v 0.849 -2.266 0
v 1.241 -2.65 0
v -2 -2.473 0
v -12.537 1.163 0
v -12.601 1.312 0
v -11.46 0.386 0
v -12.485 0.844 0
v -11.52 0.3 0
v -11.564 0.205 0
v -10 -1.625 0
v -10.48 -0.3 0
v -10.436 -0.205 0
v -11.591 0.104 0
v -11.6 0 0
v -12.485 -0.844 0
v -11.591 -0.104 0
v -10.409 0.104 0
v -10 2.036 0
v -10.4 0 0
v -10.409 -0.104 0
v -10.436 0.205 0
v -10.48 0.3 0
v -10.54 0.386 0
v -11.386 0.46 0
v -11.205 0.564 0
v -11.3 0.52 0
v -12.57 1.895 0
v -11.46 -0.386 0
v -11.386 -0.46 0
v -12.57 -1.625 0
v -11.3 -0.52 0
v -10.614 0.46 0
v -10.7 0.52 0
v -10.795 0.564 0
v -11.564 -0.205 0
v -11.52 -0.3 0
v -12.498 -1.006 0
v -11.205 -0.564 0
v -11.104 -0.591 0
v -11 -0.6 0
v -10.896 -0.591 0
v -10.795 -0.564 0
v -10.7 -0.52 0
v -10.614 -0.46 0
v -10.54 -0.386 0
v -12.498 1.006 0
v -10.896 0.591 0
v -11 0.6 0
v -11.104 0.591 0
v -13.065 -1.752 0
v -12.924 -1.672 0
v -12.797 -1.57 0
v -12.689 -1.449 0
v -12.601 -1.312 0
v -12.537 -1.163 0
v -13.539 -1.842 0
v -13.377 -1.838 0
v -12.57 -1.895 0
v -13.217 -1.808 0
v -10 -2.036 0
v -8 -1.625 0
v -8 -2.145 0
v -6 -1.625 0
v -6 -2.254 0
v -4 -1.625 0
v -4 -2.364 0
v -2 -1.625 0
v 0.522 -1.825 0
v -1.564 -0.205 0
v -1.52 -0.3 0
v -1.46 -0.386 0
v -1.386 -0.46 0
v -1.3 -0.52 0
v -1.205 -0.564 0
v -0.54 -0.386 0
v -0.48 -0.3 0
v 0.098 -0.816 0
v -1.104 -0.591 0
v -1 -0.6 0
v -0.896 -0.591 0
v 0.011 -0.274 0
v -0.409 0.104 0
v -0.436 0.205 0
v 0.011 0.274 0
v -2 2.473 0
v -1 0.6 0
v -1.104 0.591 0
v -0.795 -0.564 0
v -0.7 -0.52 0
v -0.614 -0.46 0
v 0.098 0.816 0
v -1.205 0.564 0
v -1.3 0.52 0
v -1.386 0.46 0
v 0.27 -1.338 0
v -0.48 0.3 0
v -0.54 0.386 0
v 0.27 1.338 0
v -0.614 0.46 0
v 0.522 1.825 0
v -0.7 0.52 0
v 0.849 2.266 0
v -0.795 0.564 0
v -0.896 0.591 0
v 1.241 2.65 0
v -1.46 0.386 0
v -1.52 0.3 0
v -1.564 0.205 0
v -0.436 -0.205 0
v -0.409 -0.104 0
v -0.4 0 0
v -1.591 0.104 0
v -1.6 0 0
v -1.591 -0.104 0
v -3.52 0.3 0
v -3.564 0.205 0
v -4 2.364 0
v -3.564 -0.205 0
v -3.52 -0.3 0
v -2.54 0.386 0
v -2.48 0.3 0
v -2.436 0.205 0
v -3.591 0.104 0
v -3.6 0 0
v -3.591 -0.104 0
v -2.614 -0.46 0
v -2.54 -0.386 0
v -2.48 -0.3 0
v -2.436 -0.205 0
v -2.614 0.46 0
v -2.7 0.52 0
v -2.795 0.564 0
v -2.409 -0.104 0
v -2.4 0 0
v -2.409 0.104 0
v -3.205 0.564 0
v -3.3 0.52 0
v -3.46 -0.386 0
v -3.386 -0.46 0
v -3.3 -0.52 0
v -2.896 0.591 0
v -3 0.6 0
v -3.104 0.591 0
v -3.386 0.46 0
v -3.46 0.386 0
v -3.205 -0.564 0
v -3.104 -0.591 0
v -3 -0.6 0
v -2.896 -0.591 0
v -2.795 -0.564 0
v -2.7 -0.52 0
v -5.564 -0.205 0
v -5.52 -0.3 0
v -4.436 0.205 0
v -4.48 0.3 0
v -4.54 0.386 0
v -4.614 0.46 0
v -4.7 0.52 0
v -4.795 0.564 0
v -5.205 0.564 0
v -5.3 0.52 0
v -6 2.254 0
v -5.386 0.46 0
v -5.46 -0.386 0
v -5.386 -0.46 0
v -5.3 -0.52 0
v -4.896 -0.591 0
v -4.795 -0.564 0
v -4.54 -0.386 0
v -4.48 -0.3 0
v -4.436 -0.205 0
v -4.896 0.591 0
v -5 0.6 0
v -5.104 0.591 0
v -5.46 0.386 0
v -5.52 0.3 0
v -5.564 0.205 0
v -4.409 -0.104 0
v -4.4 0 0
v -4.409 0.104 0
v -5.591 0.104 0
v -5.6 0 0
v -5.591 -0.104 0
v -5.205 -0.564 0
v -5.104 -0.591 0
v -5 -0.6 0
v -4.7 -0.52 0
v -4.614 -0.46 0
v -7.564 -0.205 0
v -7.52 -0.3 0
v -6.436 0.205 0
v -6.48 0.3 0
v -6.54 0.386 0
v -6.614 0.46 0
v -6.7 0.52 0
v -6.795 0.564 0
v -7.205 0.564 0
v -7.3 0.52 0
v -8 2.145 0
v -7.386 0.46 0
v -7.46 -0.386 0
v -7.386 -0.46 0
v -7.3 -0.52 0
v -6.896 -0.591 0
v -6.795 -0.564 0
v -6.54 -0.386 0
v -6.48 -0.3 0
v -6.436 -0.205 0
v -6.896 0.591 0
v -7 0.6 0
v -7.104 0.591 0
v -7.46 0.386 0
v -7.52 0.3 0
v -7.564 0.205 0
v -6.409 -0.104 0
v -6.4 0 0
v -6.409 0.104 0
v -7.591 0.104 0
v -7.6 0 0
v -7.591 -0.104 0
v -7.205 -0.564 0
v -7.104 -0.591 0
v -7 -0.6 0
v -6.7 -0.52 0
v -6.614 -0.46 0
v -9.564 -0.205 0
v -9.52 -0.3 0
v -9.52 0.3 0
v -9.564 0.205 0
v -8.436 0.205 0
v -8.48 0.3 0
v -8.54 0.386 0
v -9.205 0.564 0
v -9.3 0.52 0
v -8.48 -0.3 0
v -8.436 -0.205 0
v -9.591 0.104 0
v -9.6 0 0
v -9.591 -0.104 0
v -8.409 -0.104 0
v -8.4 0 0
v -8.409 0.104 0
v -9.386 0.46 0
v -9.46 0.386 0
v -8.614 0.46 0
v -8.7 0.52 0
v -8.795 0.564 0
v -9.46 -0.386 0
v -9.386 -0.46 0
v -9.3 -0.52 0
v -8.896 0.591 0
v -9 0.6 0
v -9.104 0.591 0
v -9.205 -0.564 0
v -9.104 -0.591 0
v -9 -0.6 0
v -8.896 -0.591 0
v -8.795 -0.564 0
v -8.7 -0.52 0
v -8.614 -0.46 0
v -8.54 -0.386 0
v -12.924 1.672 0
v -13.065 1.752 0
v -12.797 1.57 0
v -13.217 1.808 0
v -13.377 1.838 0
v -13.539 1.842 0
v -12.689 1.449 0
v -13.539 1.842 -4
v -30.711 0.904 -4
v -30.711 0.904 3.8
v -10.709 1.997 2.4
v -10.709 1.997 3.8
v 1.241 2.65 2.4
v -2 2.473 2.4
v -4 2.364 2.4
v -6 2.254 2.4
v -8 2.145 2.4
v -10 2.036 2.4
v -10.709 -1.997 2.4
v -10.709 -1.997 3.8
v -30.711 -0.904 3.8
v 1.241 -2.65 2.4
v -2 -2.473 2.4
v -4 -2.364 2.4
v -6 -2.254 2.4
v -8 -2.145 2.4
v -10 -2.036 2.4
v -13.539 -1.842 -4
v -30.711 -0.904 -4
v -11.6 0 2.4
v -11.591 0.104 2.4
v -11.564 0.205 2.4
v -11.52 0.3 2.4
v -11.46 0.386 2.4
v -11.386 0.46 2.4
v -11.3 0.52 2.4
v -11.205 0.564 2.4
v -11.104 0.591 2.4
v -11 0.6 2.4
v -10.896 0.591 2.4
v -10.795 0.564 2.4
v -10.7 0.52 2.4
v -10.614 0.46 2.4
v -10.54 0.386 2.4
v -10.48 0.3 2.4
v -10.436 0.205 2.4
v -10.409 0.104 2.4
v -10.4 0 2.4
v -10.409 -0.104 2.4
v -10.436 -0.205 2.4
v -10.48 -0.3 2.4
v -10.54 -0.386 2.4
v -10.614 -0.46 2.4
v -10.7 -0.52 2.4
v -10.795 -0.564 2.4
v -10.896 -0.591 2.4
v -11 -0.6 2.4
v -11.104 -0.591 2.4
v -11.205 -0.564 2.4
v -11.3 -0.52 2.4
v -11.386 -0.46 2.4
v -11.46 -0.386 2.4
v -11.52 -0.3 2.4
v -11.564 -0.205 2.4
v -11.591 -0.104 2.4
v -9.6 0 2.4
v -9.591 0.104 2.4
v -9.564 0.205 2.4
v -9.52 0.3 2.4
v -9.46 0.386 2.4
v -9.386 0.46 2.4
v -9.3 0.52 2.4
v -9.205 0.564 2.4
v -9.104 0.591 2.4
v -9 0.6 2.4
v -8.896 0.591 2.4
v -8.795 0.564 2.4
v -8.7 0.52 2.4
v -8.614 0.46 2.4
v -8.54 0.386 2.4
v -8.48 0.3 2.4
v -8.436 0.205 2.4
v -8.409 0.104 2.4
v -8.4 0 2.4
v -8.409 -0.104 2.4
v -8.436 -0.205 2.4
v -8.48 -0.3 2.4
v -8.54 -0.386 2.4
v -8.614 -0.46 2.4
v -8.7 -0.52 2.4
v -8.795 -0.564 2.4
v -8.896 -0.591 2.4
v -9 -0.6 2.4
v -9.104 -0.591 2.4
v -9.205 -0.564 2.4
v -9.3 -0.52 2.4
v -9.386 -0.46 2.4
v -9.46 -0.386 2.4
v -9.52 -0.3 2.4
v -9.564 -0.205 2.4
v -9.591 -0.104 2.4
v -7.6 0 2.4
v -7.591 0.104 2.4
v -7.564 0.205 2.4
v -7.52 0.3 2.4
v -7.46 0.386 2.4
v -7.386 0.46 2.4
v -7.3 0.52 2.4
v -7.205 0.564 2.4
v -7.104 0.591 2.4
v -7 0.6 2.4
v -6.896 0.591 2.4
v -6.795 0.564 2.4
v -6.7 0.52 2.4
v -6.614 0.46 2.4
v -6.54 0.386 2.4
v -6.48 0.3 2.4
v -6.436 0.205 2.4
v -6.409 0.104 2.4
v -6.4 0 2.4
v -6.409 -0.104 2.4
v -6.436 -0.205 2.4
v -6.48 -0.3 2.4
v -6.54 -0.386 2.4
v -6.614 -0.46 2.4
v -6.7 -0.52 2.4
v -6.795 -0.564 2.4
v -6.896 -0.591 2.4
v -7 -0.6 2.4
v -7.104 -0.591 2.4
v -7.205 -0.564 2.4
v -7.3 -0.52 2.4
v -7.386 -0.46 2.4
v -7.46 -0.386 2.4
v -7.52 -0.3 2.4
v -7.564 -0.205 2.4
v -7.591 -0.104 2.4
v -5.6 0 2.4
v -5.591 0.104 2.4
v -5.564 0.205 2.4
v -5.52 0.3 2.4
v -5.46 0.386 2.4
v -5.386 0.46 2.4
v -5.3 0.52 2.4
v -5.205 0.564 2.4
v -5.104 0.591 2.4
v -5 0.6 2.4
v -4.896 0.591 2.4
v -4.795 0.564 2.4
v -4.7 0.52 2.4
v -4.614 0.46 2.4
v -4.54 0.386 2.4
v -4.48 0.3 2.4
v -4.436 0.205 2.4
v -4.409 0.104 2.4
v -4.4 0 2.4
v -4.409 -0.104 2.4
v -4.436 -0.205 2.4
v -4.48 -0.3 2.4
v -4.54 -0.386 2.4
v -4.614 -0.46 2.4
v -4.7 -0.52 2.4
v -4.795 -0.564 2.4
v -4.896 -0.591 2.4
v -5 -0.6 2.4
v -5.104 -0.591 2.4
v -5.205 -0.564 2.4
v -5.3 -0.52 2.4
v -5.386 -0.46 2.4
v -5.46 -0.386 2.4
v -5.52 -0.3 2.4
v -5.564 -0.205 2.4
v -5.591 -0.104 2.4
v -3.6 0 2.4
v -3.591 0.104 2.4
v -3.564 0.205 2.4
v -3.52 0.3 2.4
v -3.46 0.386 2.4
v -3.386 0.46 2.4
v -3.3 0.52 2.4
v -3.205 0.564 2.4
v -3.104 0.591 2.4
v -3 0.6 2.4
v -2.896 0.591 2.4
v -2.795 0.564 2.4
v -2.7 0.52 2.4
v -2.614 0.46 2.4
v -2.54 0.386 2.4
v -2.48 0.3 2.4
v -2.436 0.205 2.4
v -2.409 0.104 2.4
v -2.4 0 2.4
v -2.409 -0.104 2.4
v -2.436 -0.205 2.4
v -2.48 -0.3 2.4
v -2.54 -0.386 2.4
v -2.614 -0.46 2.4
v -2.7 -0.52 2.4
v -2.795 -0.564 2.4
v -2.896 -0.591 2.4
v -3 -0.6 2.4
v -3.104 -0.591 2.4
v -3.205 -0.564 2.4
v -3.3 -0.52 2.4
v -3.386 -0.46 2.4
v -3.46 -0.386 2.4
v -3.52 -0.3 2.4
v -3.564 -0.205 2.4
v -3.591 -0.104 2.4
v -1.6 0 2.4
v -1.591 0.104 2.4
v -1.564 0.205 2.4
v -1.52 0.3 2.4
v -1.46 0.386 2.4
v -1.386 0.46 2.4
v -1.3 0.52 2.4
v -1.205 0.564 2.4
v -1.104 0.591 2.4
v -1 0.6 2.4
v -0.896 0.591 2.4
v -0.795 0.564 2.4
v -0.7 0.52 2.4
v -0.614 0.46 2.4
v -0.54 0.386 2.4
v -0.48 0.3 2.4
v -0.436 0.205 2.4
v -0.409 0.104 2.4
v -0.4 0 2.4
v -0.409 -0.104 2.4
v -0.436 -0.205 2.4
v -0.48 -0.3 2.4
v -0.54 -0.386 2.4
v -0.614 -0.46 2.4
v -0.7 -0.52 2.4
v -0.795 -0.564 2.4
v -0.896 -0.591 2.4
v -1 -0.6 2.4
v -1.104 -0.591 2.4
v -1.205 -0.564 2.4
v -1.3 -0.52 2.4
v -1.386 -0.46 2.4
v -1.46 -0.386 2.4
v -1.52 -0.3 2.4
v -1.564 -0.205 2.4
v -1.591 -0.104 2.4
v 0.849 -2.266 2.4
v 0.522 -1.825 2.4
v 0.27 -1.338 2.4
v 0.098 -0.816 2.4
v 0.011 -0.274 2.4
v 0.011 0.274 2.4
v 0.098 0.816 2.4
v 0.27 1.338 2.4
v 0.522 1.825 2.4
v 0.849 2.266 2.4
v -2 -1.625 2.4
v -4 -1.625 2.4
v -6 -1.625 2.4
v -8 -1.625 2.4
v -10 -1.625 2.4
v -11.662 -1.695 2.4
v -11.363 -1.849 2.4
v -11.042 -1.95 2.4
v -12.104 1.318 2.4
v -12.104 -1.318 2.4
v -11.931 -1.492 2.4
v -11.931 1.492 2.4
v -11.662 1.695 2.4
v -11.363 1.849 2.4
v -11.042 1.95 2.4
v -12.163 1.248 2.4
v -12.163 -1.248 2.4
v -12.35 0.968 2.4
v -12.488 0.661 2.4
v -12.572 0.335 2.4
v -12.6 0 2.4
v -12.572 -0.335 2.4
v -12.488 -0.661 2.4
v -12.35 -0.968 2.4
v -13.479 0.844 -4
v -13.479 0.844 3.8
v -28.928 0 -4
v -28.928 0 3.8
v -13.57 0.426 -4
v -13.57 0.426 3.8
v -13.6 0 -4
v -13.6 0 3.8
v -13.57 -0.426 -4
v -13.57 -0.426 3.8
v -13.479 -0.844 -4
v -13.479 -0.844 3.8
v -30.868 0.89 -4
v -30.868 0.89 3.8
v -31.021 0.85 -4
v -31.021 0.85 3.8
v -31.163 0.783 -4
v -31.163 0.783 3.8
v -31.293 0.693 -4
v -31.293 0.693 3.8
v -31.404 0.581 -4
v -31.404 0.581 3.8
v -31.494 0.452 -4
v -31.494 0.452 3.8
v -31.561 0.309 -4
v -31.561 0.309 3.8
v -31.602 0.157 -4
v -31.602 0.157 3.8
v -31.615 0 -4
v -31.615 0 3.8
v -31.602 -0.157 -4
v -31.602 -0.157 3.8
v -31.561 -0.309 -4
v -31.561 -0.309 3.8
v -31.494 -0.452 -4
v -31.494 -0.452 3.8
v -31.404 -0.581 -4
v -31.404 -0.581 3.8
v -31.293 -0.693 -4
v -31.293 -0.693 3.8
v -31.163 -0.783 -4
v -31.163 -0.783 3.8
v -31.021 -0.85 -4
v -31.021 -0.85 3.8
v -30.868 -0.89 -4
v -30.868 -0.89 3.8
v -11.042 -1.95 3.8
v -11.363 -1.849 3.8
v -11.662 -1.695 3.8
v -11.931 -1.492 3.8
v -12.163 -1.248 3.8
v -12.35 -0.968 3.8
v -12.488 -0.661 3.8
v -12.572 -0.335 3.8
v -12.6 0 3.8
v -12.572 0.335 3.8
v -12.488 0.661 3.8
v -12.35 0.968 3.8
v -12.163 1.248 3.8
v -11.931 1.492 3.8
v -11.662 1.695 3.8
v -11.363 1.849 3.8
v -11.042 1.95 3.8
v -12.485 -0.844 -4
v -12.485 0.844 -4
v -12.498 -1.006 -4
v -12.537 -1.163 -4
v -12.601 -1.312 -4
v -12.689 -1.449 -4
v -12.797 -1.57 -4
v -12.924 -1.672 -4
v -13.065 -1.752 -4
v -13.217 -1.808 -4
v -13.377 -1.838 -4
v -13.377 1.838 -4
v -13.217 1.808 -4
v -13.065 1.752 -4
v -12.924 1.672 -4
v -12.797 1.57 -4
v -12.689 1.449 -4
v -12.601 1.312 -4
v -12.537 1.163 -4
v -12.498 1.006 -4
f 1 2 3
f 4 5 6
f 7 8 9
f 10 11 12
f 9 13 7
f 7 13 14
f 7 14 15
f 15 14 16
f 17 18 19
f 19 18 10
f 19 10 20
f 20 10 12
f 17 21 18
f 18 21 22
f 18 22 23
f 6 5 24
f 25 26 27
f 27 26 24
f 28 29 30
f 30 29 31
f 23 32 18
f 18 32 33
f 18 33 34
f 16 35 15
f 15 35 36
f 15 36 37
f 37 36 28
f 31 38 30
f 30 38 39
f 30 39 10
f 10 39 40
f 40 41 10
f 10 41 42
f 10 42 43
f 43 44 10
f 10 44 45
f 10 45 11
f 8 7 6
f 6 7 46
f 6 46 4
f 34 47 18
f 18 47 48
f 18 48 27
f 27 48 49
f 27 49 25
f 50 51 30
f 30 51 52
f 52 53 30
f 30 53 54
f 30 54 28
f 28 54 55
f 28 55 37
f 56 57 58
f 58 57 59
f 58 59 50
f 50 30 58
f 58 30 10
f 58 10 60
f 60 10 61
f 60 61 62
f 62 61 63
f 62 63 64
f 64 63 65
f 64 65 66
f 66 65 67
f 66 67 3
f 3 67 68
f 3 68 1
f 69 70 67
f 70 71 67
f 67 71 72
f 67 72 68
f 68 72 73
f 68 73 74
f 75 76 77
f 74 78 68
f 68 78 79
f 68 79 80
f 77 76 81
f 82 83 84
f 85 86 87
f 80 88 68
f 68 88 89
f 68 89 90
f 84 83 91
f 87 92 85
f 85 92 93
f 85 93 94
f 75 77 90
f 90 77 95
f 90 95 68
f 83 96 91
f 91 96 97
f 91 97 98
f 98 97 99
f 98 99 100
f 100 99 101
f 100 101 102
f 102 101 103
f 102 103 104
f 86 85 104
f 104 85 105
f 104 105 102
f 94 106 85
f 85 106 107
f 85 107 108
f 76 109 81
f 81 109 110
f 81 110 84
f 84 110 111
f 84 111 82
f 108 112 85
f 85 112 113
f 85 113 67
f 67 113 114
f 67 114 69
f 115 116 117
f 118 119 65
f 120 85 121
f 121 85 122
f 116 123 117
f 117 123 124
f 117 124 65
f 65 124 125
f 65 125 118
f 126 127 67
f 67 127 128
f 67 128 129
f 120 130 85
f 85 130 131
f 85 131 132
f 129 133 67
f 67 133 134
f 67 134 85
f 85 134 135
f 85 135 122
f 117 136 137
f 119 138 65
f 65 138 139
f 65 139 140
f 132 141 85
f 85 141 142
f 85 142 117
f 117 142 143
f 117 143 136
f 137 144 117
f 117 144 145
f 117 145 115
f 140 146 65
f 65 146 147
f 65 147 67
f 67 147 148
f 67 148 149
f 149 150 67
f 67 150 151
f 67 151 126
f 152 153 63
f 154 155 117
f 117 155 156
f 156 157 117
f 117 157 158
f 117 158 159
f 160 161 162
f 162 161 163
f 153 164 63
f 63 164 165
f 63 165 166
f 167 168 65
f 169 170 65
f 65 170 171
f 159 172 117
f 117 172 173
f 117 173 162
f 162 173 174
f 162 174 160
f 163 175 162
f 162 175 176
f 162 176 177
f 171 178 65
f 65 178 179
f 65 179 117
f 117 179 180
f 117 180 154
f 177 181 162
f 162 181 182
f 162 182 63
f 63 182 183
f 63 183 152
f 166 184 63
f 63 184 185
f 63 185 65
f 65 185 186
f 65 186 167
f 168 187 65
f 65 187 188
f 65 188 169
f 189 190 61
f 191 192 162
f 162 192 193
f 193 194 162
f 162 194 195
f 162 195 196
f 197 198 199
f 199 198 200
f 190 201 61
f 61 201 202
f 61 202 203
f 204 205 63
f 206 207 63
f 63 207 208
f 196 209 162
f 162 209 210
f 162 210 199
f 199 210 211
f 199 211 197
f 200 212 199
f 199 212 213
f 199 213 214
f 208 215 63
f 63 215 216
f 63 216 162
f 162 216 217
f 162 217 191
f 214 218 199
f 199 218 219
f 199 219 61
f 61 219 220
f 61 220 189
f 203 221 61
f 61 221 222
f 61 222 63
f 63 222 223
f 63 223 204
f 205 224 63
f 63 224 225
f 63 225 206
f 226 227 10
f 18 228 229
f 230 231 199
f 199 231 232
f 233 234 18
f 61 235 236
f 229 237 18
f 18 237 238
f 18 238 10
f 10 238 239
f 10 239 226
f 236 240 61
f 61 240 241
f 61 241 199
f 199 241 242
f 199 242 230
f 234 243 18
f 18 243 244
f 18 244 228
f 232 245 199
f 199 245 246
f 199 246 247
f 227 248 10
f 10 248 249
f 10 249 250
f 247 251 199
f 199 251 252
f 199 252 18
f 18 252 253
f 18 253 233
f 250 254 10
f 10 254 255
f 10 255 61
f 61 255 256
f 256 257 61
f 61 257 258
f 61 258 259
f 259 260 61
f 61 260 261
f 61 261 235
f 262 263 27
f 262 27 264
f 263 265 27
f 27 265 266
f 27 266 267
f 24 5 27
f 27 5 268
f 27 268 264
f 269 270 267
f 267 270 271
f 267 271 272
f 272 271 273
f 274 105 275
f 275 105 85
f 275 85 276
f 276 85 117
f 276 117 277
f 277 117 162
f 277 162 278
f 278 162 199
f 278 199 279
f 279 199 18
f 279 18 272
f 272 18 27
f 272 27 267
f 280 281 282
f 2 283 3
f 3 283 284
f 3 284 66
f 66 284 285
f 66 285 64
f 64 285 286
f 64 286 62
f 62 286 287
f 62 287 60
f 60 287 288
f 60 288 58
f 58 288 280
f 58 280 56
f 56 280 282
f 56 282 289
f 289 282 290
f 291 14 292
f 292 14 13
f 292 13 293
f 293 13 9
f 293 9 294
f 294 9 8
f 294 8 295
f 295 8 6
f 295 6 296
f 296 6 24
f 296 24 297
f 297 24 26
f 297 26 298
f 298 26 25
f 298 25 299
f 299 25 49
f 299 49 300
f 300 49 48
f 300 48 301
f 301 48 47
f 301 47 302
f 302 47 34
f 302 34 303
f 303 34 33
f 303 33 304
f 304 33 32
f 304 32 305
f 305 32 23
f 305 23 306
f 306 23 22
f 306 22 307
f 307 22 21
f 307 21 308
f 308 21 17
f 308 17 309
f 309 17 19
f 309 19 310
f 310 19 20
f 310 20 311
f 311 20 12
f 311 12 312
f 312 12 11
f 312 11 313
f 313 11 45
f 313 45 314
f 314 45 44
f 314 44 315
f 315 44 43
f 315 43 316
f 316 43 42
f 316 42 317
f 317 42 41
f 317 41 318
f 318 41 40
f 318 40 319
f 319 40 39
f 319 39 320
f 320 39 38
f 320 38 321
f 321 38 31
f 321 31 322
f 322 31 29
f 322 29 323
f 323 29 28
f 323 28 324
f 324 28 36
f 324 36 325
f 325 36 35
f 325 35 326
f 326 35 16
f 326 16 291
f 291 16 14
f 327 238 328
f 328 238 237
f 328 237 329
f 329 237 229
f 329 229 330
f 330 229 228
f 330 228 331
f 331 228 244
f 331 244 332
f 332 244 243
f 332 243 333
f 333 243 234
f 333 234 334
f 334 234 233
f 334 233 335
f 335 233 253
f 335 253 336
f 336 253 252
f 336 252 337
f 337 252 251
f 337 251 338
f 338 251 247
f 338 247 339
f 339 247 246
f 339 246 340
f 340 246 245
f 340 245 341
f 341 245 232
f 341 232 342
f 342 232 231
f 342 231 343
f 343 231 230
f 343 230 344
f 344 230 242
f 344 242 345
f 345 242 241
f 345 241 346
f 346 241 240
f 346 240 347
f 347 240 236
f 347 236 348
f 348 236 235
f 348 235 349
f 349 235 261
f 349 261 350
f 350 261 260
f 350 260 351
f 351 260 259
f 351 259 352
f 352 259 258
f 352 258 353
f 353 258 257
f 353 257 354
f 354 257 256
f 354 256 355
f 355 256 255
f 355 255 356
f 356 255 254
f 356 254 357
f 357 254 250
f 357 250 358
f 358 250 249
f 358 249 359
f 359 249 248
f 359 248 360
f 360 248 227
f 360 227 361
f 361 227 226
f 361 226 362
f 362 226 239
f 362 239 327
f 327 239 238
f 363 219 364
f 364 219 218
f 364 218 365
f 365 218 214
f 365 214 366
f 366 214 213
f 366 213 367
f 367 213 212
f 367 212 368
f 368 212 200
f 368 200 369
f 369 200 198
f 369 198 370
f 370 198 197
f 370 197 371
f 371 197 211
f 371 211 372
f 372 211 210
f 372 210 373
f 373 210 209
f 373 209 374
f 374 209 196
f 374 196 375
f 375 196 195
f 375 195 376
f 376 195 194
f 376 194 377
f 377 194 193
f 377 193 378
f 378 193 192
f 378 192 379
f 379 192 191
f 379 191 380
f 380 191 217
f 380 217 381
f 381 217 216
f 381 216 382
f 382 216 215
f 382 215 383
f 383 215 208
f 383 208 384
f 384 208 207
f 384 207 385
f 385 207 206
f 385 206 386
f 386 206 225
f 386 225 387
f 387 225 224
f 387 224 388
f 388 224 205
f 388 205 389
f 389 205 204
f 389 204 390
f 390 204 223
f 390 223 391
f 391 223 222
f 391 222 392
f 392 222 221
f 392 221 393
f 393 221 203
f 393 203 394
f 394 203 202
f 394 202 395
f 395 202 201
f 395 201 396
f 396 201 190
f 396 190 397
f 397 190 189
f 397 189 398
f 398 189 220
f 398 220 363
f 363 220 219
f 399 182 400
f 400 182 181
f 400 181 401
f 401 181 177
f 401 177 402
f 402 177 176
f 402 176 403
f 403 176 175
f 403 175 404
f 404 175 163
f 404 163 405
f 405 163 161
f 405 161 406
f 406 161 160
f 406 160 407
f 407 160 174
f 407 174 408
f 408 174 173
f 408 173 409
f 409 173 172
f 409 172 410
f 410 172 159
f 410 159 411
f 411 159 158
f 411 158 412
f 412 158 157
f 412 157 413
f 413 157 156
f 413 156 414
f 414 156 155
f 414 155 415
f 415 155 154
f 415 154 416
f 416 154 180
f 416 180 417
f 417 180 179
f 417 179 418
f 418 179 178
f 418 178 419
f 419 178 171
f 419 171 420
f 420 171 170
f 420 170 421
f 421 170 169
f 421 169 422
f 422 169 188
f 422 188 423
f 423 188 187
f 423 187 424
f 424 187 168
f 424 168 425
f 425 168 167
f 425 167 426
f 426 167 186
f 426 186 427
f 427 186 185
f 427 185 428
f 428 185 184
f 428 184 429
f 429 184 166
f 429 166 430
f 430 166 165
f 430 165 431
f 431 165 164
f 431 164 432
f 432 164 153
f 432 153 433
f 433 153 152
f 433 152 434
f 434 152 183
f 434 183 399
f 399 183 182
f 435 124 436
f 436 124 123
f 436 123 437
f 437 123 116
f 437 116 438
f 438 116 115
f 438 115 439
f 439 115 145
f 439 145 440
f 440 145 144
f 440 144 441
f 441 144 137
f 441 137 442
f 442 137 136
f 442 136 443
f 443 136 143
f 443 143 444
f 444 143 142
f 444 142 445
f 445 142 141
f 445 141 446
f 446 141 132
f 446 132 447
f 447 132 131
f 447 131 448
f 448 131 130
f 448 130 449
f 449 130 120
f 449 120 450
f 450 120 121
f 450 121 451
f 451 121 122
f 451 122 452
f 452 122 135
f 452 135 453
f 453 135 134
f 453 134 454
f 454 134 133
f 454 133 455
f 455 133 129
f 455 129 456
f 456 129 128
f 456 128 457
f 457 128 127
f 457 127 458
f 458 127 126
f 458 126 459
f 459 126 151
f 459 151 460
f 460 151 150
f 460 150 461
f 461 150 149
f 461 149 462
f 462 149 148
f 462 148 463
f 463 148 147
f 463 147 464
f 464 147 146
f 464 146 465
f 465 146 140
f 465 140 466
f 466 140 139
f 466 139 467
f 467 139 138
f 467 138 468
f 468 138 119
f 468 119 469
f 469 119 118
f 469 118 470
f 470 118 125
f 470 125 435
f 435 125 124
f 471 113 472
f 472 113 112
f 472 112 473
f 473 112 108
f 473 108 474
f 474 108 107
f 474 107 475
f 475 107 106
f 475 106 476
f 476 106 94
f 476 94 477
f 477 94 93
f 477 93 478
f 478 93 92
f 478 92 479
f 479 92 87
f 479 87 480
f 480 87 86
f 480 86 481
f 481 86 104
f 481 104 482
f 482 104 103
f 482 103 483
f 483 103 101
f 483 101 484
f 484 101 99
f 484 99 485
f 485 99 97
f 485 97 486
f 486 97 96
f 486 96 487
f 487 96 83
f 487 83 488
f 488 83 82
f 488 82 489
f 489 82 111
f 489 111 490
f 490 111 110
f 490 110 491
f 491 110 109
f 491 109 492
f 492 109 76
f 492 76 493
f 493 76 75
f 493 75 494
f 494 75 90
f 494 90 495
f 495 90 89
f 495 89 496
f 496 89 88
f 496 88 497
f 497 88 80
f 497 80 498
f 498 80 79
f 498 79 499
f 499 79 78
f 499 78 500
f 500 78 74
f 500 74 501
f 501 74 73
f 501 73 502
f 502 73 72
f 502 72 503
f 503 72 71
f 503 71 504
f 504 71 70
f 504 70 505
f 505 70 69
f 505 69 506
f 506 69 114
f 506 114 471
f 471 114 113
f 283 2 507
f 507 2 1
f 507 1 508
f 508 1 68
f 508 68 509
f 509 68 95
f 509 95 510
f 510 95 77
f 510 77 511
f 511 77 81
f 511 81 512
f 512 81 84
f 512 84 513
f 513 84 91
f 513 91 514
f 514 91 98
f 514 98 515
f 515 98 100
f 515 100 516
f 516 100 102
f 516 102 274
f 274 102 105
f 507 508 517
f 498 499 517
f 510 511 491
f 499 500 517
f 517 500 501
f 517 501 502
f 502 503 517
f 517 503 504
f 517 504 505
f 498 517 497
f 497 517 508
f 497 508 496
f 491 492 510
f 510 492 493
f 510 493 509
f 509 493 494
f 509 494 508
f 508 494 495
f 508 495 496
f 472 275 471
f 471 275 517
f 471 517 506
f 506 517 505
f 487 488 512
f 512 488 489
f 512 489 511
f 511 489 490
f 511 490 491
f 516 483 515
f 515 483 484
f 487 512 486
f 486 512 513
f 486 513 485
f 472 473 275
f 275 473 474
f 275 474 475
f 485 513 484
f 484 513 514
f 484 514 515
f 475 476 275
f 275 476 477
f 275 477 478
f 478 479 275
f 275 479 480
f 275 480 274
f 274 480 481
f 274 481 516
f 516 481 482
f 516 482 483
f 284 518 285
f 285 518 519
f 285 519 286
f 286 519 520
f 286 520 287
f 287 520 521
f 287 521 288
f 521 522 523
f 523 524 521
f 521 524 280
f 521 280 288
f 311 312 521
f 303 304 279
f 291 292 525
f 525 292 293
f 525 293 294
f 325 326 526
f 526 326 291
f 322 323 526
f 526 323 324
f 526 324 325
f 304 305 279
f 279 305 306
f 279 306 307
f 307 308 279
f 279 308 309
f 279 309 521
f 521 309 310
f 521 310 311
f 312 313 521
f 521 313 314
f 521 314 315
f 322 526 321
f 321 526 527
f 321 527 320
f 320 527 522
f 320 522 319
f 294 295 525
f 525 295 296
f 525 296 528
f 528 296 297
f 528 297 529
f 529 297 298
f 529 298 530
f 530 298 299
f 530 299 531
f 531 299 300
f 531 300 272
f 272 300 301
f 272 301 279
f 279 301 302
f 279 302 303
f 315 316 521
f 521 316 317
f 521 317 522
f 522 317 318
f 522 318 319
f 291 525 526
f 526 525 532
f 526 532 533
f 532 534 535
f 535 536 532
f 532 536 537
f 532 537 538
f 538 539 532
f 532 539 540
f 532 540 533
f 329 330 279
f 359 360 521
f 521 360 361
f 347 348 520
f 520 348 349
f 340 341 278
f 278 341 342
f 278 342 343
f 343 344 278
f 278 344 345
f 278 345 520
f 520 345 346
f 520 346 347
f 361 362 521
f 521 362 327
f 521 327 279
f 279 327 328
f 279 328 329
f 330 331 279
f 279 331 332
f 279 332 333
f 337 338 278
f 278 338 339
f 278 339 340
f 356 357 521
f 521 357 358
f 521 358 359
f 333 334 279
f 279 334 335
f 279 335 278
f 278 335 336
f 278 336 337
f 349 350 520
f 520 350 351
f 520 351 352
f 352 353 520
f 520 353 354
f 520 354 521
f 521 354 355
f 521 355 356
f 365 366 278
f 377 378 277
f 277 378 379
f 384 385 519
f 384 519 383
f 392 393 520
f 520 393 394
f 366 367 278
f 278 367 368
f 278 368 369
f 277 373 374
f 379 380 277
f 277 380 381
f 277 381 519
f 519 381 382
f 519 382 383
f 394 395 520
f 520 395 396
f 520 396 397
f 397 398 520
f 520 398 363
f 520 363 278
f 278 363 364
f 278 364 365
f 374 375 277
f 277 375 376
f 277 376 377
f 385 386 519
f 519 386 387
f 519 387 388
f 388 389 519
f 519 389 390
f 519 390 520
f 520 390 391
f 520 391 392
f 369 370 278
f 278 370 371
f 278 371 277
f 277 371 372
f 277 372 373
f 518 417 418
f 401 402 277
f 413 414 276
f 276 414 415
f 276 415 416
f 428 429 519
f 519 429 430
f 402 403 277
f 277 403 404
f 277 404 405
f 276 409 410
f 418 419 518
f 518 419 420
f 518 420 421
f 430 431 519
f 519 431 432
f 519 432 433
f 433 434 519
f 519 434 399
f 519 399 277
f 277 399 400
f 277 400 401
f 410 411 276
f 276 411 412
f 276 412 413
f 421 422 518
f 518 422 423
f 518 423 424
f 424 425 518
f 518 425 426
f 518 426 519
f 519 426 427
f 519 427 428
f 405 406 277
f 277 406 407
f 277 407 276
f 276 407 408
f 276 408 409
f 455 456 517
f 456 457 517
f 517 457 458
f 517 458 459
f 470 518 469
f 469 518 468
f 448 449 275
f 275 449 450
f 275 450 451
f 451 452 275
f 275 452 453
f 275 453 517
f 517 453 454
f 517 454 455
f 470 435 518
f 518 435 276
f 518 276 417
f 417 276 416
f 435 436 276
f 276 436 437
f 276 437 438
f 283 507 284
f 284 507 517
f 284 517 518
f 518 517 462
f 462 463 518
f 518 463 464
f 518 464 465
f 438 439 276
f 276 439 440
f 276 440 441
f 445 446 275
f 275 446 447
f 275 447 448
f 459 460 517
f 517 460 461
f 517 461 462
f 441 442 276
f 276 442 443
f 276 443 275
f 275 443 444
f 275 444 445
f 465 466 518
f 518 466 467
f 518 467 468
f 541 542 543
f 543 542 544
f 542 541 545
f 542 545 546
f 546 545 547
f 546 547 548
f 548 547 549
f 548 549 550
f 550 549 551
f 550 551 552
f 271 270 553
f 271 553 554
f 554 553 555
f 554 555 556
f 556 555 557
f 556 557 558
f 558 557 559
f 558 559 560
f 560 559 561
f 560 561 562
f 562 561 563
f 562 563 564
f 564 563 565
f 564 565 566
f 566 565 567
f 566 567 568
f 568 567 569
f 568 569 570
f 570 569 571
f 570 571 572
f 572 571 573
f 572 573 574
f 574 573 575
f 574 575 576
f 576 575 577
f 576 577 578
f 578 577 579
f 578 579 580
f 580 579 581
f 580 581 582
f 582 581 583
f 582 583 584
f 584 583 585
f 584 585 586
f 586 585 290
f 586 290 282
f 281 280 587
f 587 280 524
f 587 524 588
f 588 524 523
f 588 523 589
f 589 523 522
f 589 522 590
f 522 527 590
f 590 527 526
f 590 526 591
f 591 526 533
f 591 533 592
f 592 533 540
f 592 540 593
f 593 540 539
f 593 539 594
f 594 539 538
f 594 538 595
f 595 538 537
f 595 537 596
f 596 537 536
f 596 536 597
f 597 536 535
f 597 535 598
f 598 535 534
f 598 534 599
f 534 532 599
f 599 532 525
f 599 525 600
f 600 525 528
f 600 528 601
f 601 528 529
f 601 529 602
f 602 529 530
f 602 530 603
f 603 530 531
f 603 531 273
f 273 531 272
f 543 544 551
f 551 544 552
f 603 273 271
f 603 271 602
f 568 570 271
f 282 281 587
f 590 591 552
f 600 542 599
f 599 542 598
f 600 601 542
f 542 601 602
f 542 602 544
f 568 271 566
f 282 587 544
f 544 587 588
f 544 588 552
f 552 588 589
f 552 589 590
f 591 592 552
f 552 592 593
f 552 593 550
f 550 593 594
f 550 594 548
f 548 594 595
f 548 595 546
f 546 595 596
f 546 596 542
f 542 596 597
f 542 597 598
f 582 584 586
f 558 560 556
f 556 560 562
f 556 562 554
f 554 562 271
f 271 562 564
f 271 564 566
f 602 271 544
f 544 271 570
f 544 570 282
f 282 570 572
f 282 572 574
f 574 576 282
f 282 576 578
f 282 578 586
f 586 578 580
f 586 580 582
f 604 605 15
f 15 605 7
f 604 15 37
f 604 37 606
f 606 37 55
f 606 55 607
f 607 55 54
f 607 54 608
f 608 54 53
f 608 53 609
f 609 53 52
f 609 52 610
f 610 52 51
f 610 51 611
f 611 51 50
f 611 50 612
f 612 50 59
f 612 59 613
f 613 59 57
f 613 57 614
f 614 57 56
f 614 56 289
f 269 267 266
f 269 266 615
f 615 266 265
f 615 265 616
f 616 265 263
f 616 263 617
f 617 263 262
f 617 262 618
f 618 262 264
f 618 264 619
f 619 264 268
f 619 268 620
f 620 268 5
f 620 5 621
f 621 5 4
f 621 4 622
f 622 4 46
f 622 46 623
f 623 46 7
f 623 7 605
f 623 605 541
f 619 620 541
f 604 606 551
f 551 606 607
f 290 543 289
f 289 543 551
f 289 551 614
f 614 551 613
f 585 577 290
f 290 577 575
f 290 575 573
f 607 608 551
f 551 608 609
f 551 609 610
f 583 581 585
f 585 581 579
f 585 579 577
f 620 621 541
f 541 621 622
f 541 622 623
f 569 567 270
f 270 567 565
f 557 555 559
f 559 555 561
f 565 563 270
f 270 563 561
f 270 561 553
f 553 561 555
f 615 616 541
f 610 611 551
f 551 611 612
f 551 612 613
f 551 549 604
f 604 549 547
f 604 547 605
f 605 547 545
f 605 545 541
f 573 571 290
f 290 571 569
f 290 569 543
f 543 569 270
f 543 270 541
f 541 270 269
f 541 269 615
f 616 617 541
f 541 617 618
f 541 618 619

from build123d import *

# Parameters (mm, degrees)
SKETCH1_R           = 0.6
BOSS_EXTRUDE1_DEPTH = 2.4
BOSS_EXTRUDE2_DEPTH = 3.8
BOSS_EXTRUDE3_START = 4
BOSS_EXTRUDE3_DEPTH = 4


with BuildPart() as part:
    # Sketch1 → Boss-Extrude1 (new body)
    with BuildSketch(Plane.XY):
        with BuildLine():
            ThreePointArc((1.240927797, -2.65), (0, 0), (1.240927797, 2.65))
            Line((1.240927797, 2.65), (-10.709121967, 1.99702088))
            ThreePointArc((-10.709121967, 1.99702088), (-12.6, 0), (-10.709121967, -1.99702088))
            Line((-10.709121967, -1.99702088), (1.240927797, -2.65))
        make_face()
        with Locations((-11, 0)):
            Circle(SKETCH1_R, mode=Mode.SUBTRACT)
        with Locations((-9, 0)):
            Circle(SKETCH1_R, mode=Mode.SUBTRACT)
        with Locations((-7, 0)):
            Circle(SKETCH1_R, mode=Mode.SUBTRACT)
        with Locations((-5, 0)):
            Circle(SKETCH1_R, mode=Mode.SUBTRACT)
        with Locations((-3, 0)):
            Circle(SKETCH1_R, mode=Mode.SUBTRACT)
        with Locations((-1, 0)):
            Circle(SKETCH1_R, mode=Mode.SUBTRACT)
    extrude(amount=BOSS_EXTRUDE1_DEPTH)

    # Sketch1<4> → Boss-Extrude2 (add)
    with BuildSketch(Plane.XY):
        with BuildLine():
            ThreePointArc((-10.709121967, -1.99702088), (-12.6, 0), (-10.709121967, 1.99702088))
            Line((-10.709121967, 1.99702088), (-30.711406288, 0.904048527))
            ThreePointArc((-30.711406288, 0.904048527), (-31.615454815, 0), (-30.711406288, -0.904048527))
            Line((-30.711406288, -0.904048527), (-10.709121967, -1.99702088))
        make_face()
        with BuildLine():
            Line((-28.928115358, 0), (-13.478774997, 0.844188674))
            ThreePointArc((-13.478774997, 0.844188674), (-13.6, 0), (-13.478774997, -0.844188674))
            Line((-13.478774997, -0.844188674), (-28.928115358, 0))
        make_face(mode=Mode.SUBTRACT)
    extrude(amount=BOSS_EXTRUDE2_DEPTH)

    # Sketch2 → Boss-Extrude3 (add)
    with BuildSketch(Plane(origin=(0, 0, 0), x_dir=(-1, 0, 0), z_dir=(0, 0, -1)).offset(BOSS_EXTRUDE3_START)):
        with BuildLine():
            Line((12.484683103, 0.843865841), (12.484683103, -0.843865841))
            ThreePointArc((12.484683103, -0.843865841), (12.797137099, -1.570006662), (13.539244087, -1.842376282))
            Line((13.539244087, -1.842376282), (30.711406288, -0.904048527))
            ThreePointArc((30.711406288, -0.904048527), (31.615454815, 0), (30.711406288, 0.904048527))
            Line((30.711406288, 0.904048527), (13.539244087, 1.842376282))
            ThreePointArc((13.539244087, 1.842376282), (12.797137099, 1.570006662), (12.484683103, 0.843865841))
        make_face()
        with BuildLine():
            Line((28.928115358, 0), (13.478774997, -0.844188674))
            ThreePointArc((13.478774997, -0.844188674), (13.6, 0), (13.478774997, 0.844188674))
            Line((13.478774997, 0.844188674), (28.928115358, 0))
        make_face(mode=Mode.SUBTRACT)
    extrude(amount=-BOSS_EXTRUDE3_DEPTH)


solid = part.part
